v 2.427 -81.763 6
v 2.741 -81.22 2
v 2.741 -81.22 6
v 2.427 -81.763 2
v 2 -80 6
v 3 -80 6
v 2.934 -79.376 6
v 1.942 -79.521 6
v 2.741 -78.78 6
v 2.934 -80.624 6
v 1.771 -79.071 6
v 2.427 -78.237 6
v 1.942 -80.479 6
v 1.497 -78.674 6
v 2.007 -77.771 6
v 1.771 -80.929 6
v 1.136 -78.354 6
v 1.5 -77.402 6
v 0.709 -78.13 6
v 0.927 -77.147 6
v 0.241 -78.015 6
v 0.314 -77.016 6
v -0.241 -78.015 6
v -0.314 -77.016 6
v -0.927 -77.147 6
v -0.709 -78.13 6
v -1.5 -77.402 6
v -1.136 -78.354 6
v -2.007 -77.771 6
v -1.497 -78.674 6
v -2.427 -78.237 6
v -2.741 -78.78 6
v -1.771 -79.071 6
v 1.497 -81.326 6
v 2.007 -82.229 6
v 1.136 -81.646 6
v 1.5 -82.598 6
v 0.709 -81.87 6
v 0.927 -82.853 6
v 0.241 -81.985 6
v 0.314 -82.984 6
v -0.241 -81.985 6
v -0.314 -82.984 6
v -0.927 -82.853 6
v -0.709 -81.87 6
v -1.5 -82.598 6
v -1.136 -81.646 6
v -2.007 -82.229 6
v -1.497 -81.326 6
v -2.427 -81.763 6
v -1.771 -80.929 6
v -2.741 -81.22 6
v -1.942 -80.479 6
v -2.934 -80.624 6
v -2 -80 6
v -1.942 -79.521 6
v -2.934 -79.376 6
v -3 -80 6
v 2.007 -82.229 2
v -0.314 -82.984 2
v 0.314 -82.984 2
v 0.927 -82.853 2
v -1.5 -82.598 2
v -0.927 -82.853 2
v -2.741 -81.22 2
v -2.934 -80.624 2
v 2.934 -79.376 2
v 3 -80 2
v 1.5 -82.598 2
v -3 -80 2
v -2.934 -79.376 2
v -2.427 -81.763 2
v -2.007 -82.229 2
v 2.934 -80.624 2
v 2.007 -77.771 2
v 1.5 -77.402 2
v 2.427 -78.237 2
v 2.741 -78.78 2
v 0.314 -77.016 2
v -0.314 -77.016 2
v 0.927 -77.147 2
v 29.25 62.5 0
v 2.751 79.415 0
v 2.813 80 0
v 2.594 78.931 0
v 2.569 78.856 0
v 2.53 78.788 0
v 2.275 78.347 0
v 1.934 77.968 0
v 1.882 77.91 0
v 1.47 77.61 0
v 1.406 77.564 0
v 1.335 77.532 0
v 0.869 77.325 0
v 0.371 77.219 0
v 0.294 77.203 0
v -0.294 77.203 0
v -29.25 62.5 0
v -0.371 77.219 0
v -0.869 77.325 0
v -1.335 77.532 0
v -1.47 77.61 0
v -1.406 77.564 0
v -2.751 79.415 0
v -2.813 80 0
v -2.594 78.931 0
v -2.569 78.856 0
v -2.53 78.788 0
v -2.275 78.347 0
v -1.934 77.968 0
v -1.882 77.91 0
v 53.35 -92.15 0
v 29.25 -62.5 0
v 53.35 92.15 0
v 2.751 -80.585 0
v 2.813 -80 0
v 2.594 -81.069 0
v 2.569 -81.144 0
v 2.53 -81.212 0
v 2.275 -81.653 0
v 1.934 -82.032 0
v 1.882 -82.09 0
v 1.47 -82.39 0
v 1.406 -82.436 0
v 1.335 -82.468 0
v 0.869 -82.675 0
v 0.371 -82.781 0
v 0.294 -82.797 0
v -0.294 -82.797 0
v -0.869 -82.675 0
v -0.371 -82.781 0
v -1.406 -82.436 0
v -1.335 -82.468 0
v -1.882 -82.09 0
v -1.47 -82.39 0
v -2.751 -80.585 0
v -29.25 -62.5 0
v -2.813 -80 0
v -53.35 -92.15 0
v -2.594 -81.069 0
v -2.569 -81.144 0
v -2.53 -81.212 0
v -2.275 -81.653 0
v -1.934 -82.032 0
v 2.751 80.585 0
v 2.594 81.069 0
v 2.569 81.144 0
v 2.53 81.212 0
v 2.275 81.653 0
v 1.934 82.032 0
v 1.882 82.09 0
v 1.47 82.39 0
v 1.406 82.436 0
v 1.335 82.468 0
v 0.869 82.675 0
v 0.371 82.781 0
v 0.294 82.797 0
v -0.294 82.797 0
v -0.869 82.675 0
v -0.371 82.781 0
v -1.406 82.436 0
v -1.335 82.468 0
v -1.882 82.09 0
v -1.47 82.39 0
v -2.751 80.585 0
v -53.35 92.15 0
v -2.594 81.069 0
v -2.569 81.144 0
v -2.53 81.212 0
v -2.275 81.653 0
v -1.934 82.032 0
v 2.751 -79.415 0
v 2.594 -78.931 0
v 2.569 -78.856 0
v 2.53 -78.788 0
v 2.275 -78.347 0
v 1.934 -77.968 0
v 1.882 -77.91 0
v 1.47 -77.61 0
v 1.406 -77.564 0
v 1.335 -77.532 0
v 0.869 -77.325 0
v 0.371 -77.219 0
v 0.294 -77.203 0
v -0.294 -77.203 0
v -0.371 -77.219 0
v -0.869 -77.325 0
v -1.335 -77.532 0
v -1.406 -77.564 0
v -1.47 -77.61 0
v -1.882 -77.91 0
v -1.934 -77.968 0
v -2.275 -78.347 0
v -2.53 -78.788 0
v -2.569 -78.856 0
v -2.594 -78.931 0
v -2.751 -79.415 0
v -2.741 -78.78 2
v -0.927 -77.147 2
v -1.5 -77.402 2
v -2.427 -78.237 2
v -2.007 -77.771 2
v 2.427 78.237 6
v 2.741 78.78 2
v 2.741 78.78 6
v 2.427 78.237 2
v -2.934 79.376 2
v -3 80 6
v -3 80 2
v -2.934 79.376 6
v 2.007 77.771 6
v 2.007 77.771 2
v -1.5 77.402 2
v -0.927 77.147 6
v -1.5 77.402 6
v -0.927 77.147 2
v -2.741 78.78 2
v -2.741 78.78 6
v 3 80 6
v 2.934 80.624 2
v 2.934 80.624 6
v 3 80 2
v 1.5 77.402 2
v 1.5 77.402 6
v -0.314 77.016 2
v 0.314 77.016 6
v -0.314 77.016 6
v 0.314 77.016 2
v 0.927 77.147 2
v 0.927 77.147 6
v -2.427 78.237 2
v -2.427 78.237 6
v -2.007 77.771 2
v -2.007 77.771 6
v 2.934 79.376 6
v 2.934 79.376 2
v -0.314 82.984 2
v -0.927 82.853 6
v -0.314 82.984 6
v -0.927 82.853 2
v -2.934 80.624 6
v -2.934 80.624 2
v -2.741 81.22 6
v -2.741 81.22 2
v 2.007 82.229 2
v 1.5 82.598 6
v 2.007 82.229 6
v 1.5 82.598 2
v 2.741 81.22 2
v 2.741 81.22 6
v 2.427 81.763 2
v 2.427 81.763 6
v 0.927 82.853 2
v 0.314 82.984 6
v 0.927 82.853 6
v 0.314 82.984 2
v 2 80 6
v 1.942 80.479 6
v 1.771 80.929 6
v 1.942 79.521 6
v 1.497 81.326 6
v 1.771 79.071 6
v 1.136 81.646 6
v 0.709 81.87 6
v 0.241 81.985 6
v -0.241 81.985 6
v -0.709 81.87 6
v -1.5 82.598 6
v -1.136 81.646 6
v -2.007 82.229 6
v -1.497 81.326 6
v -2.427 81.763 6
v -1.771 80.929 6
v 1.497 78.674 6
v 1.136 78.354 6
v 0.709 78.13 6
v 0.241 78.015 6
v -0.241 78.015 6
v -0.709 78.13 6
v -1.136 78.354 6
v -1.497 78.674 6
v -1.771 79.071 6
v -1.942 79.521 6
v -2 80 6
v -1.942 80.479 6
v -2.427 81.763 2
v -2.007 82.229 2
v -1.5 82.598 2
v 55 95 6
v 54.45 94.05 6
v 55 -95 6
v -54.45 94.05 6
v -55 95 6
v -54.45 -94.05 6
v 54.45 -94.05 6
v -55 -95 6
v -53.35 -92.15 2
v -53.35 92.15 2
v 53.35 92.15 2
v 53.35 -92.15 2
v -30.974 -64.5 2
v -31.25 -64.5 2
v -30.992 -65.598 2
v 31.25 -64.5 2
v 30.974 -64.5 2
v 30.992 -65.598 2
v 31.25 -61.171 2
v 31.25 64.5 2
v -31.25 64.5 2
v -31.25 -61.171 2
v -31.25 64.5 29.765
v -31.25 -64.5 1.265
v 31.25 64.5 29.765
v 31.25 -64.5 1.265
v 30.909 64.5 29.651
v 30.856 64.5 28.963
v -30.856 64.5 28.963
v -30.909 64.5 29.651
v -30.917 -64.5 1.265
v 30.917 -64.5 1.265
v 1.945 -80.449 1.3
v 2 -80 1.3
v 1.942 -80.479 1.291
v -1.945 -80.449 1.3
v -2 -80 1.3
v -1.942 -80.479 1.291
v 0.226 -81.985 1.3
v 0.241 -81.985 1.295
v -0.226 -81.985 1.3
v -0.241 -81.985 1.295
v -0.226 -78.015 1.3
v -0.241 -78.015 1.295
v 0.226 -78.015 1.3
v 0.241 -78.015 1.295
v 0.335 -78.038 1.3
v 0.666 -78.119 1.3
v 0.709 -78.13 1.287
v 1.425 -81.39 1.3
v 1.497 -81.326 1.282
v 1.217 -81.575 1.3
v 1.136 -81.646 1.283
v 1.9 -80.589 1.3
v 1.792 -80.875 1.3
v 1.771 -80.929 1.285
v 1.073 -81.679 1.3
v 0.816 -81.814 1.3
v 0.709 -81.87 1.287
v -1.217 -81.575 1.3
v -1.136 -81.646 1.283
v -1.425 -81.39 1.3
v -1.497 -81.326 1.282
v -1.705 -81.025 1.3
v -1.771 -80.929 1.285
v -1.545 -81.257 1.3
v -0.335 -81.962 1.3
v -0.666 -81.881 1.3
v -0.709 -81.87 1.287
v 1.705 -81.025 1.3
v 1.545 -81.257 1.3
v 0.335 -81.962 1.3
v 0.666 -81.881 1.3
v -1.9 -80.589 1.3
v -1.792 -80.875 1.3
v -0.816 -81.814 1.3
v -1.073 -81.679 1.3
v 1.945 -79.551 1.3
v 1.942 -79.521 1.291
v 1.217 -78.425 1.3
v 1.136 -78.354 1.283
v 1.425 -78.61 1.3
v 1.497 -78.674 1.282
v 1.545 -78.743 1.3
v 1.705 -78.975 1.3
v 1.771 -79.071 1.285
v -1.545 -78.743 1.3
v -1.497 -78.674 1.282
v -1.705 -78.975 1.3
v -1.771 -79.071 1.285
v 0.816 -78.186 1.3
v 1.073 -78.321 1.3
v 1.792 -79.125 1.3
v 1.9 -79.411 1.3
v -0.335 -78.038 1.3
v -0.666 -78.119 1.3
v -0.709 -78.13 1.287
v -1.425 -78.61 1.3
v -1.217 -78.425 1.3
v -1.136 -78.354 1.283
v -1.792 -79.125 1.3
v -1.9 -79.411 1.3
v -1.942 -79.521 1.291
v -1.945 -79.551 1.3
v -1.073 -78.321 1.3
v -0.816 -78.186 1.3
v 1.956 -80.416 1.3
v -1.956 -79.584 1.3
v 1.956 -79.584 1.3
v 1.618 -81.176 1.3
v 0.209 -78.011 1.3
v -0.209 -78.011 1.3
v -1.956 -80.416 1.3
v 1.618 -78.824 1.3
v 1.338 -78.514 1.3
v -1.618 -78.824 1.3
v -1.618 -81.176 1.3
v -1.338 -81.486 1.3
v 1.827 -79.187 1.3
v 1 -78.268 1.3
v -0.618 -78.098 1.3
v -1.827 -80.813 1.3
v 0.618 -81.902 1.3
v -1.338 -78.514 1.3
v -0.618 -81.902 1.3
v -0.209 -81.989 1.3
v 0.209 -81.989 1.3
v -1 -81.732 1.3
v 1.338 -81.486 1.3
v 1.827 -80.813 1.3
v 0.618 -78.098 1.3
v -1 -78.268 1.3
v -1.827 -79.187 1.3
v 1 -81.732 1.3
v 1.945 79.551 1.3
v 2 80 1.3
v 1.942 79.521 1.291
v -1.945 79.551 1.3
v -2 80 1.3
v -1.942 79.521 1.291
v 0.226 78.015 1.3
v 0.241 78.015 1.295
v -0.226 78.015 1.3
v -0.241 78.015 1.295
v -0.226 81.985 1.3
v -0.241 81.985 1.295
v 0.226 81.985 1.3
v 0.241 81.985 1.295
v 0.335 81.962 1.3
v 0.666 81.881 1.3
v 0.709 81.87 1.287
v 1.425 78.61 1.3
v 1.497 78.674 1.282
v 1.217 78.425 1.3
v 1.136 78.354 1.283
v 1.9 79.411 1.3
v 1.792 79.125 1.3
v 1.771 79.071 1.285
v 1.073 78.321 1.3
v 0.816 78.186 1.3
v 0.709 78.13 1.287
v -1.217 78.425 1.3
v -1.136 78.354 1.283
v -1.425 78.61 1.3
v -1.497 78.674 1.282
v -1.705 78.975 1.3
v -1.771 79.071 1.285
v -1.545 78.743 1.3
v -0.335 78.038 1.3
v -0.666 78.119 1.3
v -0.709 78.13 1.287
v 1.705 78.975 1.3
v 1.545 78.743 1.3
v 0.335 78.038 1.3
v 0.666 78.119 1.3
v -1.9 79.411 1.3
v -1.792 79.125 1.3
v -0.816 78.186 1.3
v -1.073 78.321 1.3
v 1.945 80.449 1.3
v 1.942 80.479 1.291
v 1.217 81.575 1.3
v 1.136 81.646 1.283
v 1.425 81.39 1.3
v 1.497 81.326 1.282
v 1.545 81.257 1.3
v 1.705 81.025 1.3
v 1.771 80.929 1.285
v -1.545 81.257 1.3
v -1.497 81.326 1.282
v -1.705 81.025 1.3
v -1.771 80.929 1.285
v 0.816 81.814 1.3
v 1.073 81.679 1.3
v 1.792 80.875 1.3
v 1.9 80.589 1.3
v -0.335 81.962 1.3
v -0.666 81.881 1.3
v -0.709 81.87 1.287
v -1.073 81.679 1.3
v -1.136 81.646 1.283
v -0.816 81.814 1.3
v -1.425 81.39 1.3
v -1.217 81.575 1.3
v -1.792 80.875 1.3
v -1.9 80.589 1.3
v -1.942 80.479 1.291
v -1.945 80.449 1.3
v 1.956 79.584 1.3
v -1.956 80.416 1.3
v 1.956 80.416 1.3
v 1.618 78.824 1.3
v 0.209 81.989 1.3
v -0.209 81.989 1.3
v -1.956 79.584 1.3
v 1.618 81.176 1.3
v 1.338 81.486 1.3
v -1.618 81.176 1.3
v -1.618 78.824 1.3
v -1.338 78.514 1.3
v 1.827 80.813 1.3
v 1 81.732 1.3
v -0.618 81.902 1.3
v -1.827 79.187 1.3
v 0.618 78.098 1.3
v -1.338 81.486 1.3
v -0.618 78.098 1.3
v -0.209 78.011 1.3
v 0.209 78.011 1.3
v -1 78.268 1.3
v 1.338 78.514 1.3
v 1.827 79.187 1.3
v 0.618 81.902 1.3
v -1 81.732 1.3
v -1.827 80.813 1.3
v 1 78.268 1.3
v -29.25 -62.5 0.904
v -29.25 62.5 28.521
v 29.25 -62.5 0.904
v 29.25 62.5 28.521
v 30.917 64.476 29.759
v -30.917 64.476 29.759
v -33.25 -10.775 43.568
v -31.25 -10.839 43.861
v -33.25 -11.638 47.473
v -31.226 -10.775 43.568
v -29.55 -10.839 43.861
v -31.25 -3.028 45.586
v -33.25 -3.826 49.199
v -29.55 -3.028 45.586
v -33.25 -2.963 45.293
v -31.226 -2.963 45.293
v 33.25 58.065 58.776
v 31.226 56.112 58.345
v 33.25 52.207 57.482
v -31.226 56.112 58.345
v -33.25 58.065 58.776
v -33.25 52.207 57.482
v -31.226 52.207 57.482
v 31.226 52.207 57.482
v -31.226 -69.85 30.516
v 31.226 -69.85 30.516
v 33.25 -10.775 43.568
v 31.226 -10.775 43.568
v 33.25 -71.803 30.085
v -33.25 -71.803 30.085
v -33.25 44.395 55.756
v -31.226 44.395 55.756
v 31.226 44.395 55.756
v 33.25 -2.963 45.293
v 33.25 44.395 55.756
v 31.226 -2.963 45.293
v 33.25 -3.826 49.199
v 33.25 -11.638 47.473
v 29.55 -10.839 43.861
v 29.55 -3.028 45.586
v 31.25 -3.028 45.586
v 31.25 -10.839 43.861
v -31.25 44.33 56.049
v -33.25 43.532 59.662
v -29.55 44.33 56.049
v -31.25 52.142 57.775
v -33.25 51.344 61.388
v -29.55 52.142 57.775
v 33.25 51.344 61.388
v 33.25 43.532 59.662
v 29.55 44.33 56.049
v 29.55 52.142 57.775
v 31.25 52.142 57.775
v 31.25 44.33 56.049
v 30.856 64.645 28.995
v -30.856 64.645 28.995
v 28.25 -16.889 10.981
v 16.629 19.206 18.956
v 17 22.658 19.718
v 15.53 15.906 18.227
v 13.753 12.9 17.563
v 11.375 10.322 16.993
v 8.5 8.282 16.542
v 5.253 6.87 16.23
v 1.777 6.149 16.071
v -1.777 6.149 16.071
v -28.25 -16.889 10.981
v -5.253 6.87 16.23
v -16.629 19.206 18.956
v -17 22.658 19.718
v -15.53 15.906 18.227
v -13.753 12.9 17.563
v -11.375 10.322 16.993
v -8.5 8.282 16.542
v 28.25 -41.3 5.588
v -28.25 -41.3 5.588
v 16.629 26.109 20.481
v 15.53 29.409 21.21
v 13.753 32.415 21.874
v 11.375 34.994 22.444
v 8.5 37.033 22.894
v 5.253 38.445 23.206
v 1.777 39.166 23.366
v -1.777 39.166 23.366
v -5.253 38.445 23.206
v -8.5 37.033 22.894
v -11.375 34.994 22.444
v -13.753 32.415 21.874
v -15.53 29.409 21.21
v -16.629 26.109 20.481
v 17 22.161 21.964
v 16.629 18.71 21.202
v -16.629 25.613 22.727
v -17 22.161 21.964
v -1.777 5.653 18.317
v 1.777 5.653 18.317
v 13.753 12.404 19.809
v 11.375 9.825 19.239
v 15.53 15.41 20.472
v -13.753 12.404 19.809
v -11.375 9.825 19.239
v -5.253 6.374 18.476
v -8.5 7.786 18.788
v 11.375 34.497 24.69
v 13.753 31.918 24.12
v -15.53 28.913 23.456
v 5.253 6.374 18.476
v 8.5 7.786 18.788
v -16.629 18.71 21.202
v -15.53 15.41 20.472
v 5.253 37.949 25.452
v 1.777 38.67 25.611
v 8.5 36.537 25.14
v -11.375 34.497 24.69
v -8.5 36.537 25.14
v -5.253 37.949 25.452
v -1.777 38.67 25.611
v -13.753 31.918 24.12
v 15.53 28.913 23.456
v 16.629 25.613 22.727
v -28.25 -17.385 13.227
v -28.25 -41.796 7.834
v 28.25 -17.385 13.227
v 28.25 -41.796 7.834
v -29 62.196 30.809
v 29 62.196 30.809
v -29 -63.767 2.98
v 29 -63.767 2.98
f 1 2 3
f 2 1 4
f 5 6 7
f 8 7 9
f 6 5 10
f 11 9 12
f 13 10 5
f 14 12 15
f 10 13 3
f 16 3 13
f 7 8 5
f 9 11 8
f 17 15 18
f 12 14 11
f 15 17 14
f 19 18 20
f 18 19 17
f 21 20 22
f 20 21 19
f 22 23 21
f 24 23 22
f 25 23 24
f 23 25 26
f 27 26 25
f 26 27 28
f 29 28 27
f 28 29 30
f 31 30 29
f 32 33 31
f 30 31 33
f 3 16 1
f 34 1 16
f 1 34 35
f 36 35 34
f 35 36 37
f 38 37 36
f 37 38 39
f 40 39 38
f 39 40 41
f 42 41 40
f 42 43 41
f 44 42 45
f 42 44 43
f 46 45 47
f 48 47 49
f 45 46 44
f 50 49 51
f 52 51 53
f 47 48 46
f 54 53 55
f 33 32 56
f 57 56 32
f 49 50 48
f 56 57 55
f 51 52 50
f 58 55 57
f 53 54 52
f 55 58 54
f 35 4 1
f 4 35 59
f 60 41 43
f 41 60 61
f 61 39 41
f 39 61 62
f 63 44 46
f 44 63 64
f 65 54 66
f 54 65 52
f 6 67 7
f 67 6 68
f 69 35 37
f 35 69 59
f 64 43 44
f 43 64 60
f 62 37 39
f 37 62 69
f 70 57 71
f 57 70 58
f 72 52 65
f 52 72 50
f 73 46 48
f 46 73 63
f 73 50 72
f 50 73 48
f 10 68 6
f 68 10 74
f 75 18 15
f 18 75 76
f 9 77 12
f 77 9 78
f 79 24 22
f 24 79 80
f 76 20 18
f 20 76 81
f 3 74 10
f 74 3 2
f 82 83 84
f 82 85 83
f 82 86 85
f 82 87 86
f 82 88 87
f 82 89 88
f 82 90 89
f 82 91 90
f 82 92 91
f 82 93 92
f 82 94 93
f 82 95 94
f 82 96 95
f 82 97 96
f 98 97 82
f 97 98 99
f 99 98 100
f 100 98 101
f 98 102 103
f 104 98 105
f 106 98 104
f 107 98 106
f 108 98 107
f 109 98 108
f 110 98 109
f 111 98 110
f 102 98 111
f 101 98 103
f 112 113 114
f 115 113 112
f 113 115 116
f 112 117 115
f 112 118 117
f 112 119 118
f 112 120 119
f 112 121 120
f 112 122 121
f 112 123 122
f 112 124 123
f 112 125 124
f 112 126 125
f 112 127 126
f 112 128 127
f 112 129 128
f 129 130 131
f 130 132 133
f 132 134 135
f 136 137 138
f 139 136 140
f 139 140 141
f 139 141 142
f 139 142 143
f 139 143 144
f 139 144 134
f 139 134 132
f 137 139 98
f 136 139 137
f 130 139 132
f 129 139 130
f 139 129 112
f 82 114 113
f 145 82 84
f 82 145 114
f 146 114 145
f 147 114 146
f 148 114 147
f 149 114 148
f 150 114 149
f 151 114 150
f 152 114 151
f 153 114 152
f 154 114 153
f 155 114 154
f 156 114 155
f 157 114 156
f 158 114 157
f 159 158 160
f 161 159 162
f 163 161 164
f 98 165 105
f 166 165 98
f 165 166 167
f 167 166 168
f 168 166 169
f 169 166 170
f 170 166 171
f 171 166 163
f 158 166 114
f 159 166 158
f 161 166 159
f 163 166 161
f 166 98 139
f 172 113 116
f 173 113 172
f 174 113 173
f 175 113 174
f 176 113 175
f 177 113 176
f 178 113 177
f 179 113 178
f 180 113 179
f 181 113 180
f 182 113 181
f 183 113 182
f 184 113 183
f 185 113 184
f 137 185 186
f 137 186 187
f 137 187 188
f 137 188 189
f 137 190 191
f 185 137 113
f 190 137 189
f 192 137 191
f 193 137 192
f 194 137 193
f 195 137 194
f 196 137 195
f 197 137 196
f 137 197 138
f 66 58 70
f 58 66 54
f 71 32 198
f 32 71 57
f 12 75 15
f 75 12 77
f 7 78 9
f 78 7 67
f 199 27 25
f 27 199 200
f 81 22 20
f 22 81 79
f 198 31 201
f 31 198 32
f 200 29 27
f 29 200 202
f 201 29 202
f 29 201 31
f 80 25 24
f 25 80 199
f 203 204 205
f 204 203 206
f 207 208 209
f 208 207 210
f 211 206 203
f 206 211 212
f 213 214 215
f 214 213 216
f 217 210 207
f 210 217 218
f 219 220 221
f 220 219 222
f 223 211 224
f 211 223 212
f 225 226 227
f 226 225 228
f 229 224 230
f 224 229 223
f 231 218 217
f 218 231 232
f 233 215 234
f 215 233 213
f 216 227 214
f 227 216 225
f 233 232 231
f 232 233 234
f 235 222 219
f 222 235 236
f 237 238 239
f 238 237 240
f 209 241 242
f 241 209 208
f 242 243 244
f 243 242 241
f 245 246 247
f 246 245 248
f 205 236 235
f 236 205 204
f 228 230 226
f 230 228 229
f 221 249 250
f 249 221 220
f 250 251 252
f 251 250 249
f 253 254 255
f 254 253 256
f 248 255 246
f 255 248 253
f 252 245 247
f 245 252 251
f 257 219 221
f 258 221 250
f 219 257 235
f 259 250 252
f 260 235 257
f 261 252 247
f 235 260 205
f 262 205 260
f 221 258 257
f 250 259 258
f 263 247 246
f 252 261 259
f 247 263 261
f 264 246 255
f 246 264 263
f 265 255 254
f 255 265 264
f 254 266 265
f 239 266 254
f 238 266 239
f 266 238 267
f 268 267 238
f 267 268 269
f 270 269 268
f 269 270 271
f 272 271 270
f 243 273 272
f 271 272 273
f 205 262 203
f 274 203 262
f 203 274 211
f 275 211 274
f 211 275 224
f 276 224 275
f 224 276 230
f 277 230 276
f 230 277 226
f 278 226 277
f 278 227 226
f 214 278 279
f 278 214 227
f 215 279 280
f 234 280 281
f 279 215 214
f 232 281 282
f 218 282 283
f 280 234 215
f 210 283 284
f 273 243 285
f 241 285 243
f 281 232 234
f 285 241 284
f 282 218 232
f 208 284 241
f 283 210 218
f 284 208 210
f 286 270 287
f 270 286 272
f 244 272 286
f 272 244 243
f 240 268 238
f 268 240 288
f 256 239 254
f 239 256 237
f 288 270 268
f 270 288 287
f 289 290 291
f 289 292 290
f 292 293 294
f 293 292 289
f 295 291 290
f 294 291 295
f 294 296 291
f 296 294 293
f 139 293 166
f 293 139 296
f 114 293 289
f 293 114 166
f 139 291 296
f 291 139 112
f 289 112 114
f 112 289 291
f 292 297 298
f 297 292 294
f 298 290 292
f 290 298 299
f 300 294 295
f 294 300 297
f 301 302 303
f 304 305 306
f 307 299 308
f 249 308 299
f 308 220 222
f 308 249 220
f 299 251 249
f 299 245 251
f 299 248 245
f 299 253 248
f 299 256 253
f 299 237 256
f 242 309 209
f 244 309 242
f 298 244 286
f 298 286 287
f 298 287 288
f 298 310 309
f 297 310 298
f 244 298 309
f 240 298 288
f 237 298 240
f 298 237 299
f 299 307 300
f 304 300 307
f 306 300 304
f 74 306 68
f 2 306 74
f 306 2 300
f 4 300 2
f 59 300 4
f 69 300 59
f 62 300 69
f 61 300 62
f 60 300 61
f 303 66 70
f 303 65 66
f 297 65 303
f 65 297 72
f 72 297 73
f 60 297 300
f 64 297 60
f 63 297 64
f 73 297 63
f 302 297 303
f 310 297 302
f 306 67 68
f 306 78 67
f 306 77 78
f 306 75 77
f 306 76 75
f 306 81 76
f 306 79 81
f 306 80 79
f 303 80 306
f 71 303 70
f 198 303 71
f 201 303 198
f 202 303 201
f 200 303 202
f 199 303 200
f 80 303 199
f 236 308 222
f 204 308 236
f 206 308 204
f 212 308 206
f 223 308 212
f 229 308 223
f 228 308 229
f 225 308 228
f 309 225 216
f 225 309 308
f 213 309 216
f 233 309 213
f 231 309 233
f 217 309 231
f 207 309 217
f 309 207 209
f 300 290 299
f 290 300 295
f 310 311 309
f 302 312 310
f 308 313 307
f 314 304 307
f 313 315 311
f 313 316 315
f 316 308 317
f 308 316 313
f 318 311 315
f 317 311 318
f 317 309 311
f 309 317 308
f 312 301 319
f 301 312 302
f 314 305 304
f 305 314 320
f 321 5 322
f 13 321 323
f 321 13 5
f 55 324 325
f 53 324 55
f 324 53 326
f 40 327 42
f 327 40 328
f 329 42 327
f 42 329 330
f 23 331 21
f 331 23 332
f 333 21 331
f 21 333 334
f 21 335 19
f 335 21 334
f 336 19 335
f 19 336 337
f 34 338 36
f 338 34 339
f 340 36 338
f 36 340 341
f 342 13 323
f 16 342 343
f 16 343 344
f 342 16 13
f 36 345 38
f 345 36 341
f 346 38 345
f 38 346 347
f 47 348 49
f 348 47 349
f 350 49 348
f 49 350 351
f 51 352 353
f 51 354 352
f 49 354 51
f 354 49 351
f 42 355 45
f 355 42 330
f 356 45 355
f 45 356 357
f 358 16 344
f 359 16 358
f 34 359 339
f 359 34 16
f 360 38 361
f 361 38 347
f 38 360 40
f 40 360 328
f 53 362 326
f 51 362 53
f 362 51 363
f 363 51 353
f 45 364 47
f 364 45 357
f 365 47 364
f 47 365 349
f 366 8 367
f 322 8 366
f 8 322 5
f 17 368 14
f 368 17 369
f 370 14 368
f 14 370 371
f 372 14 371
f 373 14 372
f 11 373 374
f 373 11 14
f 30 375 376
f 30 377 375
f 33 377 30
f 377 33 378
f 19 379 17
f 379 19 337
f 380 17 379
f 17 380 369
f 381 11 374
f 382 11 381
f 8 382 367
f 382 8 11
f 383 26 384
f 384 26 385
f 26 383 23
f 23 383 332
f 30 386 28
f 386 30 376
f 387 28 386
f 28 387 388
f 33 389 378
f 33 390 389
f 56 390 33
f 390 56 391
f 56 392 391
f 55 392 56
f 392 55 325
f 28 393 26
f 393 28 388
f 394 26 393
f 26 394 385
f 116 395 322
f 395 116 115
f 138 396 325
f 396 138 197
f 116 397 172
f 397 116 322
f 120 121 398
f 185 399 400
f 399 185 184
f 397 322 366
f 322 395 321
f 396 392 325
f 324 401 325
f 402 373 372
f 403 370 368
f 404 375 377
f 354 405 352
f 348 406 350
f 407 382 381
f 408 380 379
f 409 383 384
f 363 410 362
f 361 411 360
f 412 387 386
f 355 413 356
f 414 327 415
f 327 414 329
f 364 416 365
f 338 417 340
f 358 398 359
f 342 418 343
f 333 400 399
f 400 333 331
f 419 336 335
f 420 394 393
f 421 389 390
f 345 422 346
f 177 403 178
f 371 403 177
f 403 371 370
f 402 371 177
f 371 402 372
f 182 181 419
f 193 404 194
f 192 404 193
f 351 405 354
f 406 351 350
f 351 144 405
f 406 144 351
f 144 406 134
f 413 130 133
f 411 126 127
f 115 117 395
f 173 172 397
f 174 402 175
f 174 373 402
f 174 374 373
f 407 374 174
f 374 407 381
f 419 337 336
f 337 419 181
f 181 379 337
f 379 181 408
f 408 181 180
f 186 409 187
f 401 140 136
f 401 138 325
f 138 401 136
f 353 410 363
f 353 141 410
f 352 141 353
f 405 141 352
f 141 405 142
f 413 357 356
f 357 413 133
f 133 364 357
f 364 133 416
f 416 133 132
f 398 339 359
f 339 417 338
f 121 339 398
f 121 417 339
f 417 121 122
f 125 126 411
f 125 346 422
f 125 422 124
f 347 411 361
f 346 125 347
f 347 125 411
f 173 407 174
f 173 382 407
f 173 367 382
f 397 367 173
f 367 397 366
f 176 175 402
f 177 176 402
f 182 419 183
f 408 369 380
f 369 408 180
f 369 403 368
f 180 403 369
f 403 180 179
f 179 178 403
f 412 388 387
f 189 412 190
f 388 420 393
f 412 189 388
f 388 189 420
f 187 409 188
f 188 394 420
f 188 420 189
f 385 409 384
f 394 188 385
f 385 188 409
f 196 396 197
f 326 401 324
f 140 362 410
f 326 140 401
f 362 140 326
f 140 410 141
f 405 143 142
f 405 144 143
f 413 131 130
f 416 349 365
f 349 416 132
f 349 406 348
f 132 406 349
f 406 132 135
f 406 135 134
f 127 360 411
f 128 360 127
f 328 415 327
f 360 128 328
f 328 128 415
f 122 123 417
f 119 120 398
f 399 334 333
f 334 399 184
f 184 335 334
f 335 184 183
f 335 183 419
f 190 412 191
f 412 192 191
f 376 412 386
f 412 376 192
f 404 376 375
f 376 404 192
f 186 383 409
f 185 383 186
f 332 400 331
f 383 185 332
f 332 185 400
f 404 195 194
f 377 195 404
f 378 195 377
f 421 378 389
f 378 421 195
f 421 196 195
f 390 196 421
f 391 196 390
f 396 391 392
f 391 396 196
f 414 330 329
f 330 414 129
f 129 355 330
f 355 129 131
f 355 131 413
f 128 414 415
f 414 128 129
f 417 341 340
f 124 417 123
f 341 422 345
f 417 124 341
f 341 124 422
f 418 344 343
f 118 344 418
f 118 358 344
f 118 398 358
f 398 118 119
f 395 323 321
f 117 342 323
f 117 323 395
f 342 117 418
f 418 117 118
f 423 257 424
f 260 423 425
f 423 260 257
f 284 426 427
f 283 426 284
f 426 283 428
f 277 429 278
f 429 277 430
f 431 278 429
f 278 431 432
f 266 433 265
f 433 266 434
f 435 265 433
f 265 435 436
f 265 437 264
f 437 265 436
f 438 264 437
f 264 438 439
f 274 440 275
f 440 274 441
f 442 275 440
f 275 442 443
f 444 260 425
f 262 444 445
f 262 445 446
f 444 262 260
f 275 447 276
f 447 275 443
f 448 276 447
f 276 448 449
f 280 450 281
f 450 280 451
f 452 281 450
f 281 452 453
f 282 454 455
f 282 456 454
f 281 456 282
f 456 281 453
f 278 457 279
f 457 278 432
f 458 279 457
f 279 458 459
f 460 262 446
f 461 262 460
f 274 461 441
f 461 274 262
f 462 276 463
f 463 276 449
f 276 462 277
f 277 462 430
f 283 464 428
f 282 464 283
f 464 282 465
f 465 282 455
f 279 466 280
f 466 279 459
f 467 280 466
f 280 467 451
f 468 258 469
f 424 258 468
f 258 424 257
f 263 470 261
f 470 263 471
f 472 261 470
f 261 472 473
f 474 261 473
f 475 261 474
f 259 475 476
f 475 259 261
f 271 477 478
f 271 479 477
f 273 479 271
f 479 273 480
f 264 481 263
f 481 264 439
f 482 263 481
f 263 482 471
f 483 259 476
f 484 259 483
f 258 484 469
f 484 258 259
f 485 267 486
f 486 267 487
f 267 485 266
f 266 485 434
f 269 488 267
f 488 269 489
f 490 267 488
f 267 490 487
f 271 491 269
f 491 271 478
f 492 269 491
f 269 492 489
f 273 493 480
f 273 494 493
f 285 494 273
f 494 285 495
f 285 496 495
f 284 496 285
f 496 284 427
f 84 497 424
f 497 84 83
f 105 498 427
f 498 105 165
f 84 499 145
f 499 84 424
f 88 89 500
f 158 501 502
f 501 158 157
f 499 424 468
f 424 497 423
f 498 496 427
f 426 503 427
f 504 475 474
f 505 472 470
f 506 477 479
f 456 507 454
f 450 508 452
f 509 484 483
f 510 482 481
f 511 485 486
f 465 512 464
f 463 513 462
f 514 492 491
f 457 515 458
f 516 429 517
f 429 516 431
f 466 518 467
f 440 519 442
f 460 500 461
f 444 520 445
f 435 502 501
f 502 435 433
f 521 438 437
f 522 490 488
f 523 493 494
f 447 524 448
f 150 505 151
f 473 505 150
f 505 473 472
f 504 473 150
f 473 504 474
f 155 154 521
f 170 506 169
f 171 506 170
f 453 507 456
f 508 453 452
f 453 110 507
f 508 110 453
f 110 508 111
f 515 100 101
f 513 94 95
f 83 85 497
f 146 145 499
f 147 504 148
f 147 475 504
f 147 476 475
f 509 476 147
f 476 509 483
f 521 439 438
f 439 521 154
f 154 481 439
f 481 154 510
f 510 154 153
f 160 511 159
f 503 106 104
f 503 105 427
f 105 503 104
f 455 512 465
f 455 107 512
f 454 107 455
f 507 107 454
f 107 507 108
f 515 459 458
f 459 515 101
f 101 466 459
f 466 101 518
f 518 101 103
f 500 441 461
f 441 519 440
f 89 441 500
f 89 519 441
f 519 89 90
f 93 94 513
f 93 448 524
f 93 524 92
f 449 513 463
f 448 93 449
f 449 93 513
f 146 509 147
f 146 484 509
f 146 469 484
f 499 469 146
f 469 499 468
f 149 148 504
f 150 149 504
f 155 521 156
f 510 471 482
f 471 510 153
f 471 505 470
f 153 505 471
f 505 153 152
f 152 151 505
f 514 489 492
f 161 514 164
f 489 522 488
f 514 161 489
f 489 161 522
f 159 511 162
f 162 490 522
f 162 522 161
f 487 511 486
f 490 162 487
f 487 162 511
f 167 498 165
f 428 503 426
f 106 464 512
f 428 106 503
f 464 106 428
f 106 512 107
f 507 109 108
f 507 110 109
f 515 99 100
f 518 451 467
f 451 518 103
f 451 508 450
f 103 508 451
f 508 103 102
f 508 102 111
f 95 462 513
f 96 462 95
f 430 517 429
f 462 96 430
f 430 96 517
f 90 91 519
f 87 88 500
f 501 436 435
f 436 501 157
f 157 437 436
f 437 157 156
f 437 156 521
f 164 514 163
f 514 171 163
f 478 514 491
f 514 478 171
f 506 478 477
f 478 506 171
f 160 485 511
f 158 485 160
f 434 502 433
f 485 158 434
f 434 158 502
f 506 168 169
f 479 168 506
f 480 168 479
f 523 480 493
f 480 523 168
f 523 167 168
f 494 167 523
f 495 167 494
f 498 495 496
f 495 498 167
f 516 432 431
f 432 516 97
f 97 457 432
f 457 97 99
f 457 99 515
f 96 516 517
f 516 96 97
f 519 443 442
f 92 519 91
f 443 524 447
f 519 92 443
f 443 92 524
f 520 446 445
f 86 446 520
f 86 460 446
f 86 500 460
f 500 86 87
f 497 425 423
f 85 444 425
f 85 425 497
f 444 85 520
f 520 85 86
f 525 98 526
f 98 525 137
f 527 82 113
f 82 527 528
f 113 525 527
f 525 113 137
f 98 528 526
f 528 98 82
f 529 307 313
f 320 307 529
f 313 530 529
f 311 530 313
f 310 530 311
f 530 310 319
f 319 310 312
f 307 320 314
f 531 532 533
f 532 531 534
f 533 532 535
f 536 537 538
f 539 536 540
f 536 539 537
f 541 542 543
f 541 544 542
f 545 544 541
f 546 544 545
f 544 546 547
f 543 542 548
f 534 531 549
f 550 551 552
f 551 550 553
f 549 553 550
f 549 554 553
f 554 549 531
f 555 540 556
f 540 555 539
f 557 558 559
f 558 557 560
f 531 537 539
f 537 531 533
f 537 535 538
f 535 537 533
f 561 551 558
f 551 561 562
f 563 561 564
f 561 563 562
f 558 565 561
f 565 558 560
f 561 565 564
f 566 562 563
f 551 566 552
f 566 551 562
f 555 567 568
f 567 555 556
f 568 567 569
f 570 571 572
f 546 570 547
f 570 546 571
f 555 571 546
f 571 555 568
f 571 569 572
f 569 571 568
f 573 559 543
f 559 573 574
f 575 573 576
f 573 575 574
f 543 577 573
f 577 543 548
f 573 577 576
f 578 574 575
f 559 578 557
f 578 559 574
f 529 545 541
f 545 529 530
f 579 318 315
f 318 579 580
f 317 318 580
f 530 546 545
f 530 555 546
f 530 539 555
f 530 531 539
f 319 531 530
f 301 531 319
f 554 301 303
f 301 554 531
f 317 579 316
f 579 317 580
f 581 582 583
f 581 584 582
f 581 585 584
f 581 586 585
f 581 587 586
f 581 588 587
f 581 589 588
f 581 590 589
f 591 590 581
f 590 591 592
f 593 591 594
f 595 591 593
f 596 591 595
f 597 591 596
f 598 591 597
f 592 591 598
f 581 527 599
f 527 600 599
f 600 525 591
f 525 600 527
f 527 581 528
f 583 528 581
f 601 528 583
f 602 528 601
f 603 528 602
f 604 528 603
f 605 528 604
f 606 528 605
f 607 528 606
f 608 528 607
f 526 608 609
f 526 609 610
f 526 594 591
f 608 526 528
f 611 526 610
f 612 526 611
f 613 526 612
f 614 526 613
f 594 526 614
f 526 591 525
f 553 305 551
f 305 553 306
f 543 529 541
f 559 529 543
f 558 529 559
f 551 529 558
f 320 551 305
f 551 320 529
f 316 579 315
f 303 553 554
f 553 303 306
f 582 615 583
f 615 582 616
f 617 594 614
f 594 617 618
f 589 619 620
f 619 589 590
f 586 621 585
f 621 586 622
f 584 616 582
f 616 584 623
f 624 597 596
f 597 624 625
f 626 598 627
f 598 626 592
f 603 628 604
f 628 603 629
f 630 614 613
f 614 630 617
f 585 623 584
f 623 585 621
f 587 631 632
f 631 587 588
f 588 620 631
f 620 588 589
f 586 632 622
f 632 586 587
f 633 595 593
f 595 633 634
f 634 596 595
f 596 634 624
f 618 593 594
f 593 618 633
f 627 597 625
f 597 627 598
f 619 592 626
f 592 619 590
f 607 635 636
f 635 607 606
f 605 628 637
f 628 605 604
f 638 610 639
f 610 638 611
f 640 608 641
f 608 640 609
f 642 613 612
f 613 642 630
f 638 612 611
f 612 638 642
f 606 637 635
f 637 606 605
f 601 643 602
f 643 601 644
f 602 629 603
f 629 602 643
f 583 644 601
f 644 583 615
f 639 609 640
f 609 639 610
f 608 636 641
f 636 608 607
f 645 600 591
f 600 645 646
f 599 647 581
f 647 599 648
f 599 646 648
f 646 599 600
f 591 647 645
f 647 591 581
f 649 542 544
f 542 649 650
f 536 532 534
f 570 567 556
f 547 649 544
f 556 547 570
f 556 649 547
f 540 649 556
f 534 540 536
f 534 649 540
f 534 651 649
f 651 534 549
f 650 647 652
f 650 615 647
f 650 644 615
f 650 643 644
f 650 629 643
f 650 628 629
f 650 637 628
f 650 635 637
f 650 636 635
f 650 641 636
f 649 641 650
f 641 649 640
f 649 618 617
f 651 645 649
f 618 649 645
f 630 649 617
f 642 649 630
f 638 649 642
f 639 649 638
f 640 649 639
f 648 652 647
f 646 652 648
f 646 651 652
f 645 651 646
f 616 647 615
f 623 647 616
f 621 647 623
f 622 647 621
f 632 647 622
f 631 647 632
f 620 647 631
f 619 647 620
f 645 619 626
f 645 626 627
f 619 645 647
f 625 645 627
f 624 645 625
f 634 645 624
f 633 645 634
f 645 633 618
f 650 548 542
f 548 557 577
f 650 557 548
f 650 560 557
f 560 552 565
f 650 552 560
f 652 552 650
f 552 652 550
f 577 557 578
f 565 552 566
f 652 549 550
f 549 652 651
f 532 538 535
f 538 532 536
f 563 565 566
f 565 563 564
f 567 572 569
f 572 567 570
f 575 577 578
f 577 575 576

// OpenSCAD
// Door-bell housing to admit a Ring door bell behind
// a mounting plate.
//
// All dimensions are mm.
//
// The orientation of the plate is facing up with back side
// of plate at Z=0.  The Ring box is mounting in the negative
// Z direction.  The front face of the plate is at PLATE_Z
// units above Z=0.
//
// Note that in final assembly, the box is flipped over
// so that it rests front-side down on the build plate.

// Mounting plate
PLATE_X = 110;
PLATE_Y = 190;
PLATE_Z = 6;

// Screw holes - for centered (0,0) plate.
HOLES_X = 0;
HOLE1_Y = PLATE_Y/2 - 15;
HOLE2_Y = -PLATE_Y/2 + 15;

SCREW_HOLE_D = 4;
SCREW_HEAD_D = 6;
SCREW_HEAD_Z = 1;

// Ring doorbell dimensions
RING_X = 62.5;
RING_INSET = 2.25;
RING_Y = 129;
RING_Z = 28.5;

RING_BUTTON_Y = 41;
RING_BUTTON_D = 34;

// Center of window
RING_WINDOW_Y = RING_Y - 34;
RING_WINDOW_HEIGHT = 25;

RING_BOX_ANGLE = atan2(RING_Z, RING_Y);

EPSILON = 0.3;
WALL_THICKNESS = 2;

// Retention clips
CLIP_WIDTH = WALL_THICKNESS * 2;
CLIP_HEIGHT = CLIP_WIDTH;
CLIP_LENGTH = 2 * CLIP_WIDTH;

module raw_plate() {
    linear_extrude(height=PLATE_Z, scale=0.97)
        square([PLATE_X, PLATE_Y], center=true);
}

module pilot() {
    cylinder(h=PLATE_Z, r=SCREW_HEAD_D/2, $fs=0.5);
}

module plate() {
    for (y = [HOLE1_Y, HOLE2_Y]) {
        translate([HOLES_X, y, 0]) {
            pilot();
        }
    }
    difference() {
        raw_plate();
        translate([0,0,-WALL_THICKNESS])
            raw_plate();
        cube([RING_X, RING_Y, RING_Z], center=true);
    }
}

module screw_holes() {
    translate([0,0,-EPSILON]) {
        for (y = [HOLE1_Y, HOLE2_Y]) {
            translate([HOLES_X, y, 0]) {
                cylinder(h=PLATE_Z+2*EPSILON, r=SCREW_HOLE_D/2, $fs=0.5);
                translate([0, 0, PLATE_Z - SCREW_HEAD_Z])
                    cylinder(h=SCREW_HEAD_Z + 2 * EPSILON, r1=SCREW_HOLE_D/2, r2=SCREW_HEAD_D/2, $fs=0.5);
            }
        }
    }
}

module ring_doorbell() {
    x0 = 0;
    x1 = RING_INSET;
    x2 = RING_X - RING_INSET;
    x3 = RING_X;
    
    y0 = 0;
    y1 = RING_Y;
    
    z0 = 0;
    z1 = RING_Z;
    
    polyhedron(points=[[x0, y0, z0], [x3, y0, z0], [x3, y1, z0], [x0, y1, z0],
                       [x1, y0, z1], [x2, y0, z1], [x2, y1, z1], [x1, y1, z1]],
               faces=[[0, 1, 2, 3], [0, 4, 5, 1], [1, 5, 6, 2], [2, 6, 7, 3],
                      [3, 7, 4, 0], [4, 7, 6, 5]]);
}

module ring_doorbell_box() {
    translate([-RING_X/2, -RING_Y/2, -RING_Z + PLATE_Z - WALL_THICKNESS]) {
        difference() {
            translate([-WALL_THICKNESS, -WALL_THICKNESS, 0])
                resize([RING_X + 2 * WALL_THICKNESS,
                        RING_Y + 2 * WALL_THICKNESS,
                        RING_Z + WALL_THICKNESS]) {
                    ring_doorbell();
            }

        }
        for (y = [RING_Y/2, CLIP_LENGTH]) {
        translate([-WALL_THICKNESS, y, 0])
            rotate(a=[180, 0, 0])
                clip();
        translate([RING_X + WALL_THICKNESS, y, 0])
            rotate(a=[180, 0, 180])
                clip();
        }
}
}

module ring_doorbell_box_cutouts() {
   translate([-RING_X/2, -RING_Y/2, -RING_Z + PLATE_Z - WALL_THICKNESS]) {
        translate([RING_X/2, RING_BUTTON_Y, 0])
            cylinder(h=RING_Z + 2 * WALL_THICKNESS, r=RING_BUTTON_D/2);
        translate([RING_X/2, RING_WINDOW_Y, RING_Z/2 + WALL_THICKNESS])
            cube([RING_X - 3 * WALL_THICKNESS, RING_WINDOW_HEIGHT, RING_Z + 2 * WALL_THICKNESS], center=true);
        translate([0, 0, -EPSILON])
            ring_doorbell();
    }
}

module clip() {
    x = CLIP_WIDTH;
    y = CLIP_LENGTH;
    z = CLIP_HEIGHT;
    translate([0, -CLIP_LENGTH/2, 0])
        polyhedron(points=[[0, 0, 0], [CLIP_WIDTH, 0, 0], [x, y, 0], [0, y, 0],
                        [0, 0, z], [0, y, z]],
                faces=[[0,1, 2, 3], [0, 4, 1], [2, 5, 3], [1, 4, 5, 2], [3, 5, 4, 0]]);
}

module rotate_box(dz) {
    translate([0, RING_Y/2, dz])
    rotate([RING_BOX_ANGLE, 0, 0])
    translate([0, -RING_Y/2, dz])
        children();
}

module shroud() {
    translate([0, 0, - RING_Z / 2 + PLATE_Z - WALL_THICKNESS/2]) {
        difference() {
            cube([RING_X, RING_Y, RING_Z + WALL_THICKNESS], center=true);
            cube([RING_X - 2 * WALL_THICKNESS, RING_Y - 2 * WALL_THICKNESS, 2 * RING_Z], center=true);
            translate([0, 0, -RING_Z - 2 * WALL_THICKNESS])
                rotate_box(RING_Z / 2 + WALL_THICKNESS / 2)
                    cube([RING_X + EPSILON, RING_Y * 1.2, RING_Z + WALL_THICKNESS], center=true);
        }
    }
}

module assembly() {
    dz = -EPSILON;
    translate([0, 0, PLATE_Z])
    rotate(a=[180, 0, 0])
    difference() {
        union() {
            plate();
            shroud();
            rotate_box(dz)
                ring_doorbell_box();
        }
        screw_holes();
        rotate_box(dz)
            ring_doorbell_box_cutouts();
    }
}

assembly();
